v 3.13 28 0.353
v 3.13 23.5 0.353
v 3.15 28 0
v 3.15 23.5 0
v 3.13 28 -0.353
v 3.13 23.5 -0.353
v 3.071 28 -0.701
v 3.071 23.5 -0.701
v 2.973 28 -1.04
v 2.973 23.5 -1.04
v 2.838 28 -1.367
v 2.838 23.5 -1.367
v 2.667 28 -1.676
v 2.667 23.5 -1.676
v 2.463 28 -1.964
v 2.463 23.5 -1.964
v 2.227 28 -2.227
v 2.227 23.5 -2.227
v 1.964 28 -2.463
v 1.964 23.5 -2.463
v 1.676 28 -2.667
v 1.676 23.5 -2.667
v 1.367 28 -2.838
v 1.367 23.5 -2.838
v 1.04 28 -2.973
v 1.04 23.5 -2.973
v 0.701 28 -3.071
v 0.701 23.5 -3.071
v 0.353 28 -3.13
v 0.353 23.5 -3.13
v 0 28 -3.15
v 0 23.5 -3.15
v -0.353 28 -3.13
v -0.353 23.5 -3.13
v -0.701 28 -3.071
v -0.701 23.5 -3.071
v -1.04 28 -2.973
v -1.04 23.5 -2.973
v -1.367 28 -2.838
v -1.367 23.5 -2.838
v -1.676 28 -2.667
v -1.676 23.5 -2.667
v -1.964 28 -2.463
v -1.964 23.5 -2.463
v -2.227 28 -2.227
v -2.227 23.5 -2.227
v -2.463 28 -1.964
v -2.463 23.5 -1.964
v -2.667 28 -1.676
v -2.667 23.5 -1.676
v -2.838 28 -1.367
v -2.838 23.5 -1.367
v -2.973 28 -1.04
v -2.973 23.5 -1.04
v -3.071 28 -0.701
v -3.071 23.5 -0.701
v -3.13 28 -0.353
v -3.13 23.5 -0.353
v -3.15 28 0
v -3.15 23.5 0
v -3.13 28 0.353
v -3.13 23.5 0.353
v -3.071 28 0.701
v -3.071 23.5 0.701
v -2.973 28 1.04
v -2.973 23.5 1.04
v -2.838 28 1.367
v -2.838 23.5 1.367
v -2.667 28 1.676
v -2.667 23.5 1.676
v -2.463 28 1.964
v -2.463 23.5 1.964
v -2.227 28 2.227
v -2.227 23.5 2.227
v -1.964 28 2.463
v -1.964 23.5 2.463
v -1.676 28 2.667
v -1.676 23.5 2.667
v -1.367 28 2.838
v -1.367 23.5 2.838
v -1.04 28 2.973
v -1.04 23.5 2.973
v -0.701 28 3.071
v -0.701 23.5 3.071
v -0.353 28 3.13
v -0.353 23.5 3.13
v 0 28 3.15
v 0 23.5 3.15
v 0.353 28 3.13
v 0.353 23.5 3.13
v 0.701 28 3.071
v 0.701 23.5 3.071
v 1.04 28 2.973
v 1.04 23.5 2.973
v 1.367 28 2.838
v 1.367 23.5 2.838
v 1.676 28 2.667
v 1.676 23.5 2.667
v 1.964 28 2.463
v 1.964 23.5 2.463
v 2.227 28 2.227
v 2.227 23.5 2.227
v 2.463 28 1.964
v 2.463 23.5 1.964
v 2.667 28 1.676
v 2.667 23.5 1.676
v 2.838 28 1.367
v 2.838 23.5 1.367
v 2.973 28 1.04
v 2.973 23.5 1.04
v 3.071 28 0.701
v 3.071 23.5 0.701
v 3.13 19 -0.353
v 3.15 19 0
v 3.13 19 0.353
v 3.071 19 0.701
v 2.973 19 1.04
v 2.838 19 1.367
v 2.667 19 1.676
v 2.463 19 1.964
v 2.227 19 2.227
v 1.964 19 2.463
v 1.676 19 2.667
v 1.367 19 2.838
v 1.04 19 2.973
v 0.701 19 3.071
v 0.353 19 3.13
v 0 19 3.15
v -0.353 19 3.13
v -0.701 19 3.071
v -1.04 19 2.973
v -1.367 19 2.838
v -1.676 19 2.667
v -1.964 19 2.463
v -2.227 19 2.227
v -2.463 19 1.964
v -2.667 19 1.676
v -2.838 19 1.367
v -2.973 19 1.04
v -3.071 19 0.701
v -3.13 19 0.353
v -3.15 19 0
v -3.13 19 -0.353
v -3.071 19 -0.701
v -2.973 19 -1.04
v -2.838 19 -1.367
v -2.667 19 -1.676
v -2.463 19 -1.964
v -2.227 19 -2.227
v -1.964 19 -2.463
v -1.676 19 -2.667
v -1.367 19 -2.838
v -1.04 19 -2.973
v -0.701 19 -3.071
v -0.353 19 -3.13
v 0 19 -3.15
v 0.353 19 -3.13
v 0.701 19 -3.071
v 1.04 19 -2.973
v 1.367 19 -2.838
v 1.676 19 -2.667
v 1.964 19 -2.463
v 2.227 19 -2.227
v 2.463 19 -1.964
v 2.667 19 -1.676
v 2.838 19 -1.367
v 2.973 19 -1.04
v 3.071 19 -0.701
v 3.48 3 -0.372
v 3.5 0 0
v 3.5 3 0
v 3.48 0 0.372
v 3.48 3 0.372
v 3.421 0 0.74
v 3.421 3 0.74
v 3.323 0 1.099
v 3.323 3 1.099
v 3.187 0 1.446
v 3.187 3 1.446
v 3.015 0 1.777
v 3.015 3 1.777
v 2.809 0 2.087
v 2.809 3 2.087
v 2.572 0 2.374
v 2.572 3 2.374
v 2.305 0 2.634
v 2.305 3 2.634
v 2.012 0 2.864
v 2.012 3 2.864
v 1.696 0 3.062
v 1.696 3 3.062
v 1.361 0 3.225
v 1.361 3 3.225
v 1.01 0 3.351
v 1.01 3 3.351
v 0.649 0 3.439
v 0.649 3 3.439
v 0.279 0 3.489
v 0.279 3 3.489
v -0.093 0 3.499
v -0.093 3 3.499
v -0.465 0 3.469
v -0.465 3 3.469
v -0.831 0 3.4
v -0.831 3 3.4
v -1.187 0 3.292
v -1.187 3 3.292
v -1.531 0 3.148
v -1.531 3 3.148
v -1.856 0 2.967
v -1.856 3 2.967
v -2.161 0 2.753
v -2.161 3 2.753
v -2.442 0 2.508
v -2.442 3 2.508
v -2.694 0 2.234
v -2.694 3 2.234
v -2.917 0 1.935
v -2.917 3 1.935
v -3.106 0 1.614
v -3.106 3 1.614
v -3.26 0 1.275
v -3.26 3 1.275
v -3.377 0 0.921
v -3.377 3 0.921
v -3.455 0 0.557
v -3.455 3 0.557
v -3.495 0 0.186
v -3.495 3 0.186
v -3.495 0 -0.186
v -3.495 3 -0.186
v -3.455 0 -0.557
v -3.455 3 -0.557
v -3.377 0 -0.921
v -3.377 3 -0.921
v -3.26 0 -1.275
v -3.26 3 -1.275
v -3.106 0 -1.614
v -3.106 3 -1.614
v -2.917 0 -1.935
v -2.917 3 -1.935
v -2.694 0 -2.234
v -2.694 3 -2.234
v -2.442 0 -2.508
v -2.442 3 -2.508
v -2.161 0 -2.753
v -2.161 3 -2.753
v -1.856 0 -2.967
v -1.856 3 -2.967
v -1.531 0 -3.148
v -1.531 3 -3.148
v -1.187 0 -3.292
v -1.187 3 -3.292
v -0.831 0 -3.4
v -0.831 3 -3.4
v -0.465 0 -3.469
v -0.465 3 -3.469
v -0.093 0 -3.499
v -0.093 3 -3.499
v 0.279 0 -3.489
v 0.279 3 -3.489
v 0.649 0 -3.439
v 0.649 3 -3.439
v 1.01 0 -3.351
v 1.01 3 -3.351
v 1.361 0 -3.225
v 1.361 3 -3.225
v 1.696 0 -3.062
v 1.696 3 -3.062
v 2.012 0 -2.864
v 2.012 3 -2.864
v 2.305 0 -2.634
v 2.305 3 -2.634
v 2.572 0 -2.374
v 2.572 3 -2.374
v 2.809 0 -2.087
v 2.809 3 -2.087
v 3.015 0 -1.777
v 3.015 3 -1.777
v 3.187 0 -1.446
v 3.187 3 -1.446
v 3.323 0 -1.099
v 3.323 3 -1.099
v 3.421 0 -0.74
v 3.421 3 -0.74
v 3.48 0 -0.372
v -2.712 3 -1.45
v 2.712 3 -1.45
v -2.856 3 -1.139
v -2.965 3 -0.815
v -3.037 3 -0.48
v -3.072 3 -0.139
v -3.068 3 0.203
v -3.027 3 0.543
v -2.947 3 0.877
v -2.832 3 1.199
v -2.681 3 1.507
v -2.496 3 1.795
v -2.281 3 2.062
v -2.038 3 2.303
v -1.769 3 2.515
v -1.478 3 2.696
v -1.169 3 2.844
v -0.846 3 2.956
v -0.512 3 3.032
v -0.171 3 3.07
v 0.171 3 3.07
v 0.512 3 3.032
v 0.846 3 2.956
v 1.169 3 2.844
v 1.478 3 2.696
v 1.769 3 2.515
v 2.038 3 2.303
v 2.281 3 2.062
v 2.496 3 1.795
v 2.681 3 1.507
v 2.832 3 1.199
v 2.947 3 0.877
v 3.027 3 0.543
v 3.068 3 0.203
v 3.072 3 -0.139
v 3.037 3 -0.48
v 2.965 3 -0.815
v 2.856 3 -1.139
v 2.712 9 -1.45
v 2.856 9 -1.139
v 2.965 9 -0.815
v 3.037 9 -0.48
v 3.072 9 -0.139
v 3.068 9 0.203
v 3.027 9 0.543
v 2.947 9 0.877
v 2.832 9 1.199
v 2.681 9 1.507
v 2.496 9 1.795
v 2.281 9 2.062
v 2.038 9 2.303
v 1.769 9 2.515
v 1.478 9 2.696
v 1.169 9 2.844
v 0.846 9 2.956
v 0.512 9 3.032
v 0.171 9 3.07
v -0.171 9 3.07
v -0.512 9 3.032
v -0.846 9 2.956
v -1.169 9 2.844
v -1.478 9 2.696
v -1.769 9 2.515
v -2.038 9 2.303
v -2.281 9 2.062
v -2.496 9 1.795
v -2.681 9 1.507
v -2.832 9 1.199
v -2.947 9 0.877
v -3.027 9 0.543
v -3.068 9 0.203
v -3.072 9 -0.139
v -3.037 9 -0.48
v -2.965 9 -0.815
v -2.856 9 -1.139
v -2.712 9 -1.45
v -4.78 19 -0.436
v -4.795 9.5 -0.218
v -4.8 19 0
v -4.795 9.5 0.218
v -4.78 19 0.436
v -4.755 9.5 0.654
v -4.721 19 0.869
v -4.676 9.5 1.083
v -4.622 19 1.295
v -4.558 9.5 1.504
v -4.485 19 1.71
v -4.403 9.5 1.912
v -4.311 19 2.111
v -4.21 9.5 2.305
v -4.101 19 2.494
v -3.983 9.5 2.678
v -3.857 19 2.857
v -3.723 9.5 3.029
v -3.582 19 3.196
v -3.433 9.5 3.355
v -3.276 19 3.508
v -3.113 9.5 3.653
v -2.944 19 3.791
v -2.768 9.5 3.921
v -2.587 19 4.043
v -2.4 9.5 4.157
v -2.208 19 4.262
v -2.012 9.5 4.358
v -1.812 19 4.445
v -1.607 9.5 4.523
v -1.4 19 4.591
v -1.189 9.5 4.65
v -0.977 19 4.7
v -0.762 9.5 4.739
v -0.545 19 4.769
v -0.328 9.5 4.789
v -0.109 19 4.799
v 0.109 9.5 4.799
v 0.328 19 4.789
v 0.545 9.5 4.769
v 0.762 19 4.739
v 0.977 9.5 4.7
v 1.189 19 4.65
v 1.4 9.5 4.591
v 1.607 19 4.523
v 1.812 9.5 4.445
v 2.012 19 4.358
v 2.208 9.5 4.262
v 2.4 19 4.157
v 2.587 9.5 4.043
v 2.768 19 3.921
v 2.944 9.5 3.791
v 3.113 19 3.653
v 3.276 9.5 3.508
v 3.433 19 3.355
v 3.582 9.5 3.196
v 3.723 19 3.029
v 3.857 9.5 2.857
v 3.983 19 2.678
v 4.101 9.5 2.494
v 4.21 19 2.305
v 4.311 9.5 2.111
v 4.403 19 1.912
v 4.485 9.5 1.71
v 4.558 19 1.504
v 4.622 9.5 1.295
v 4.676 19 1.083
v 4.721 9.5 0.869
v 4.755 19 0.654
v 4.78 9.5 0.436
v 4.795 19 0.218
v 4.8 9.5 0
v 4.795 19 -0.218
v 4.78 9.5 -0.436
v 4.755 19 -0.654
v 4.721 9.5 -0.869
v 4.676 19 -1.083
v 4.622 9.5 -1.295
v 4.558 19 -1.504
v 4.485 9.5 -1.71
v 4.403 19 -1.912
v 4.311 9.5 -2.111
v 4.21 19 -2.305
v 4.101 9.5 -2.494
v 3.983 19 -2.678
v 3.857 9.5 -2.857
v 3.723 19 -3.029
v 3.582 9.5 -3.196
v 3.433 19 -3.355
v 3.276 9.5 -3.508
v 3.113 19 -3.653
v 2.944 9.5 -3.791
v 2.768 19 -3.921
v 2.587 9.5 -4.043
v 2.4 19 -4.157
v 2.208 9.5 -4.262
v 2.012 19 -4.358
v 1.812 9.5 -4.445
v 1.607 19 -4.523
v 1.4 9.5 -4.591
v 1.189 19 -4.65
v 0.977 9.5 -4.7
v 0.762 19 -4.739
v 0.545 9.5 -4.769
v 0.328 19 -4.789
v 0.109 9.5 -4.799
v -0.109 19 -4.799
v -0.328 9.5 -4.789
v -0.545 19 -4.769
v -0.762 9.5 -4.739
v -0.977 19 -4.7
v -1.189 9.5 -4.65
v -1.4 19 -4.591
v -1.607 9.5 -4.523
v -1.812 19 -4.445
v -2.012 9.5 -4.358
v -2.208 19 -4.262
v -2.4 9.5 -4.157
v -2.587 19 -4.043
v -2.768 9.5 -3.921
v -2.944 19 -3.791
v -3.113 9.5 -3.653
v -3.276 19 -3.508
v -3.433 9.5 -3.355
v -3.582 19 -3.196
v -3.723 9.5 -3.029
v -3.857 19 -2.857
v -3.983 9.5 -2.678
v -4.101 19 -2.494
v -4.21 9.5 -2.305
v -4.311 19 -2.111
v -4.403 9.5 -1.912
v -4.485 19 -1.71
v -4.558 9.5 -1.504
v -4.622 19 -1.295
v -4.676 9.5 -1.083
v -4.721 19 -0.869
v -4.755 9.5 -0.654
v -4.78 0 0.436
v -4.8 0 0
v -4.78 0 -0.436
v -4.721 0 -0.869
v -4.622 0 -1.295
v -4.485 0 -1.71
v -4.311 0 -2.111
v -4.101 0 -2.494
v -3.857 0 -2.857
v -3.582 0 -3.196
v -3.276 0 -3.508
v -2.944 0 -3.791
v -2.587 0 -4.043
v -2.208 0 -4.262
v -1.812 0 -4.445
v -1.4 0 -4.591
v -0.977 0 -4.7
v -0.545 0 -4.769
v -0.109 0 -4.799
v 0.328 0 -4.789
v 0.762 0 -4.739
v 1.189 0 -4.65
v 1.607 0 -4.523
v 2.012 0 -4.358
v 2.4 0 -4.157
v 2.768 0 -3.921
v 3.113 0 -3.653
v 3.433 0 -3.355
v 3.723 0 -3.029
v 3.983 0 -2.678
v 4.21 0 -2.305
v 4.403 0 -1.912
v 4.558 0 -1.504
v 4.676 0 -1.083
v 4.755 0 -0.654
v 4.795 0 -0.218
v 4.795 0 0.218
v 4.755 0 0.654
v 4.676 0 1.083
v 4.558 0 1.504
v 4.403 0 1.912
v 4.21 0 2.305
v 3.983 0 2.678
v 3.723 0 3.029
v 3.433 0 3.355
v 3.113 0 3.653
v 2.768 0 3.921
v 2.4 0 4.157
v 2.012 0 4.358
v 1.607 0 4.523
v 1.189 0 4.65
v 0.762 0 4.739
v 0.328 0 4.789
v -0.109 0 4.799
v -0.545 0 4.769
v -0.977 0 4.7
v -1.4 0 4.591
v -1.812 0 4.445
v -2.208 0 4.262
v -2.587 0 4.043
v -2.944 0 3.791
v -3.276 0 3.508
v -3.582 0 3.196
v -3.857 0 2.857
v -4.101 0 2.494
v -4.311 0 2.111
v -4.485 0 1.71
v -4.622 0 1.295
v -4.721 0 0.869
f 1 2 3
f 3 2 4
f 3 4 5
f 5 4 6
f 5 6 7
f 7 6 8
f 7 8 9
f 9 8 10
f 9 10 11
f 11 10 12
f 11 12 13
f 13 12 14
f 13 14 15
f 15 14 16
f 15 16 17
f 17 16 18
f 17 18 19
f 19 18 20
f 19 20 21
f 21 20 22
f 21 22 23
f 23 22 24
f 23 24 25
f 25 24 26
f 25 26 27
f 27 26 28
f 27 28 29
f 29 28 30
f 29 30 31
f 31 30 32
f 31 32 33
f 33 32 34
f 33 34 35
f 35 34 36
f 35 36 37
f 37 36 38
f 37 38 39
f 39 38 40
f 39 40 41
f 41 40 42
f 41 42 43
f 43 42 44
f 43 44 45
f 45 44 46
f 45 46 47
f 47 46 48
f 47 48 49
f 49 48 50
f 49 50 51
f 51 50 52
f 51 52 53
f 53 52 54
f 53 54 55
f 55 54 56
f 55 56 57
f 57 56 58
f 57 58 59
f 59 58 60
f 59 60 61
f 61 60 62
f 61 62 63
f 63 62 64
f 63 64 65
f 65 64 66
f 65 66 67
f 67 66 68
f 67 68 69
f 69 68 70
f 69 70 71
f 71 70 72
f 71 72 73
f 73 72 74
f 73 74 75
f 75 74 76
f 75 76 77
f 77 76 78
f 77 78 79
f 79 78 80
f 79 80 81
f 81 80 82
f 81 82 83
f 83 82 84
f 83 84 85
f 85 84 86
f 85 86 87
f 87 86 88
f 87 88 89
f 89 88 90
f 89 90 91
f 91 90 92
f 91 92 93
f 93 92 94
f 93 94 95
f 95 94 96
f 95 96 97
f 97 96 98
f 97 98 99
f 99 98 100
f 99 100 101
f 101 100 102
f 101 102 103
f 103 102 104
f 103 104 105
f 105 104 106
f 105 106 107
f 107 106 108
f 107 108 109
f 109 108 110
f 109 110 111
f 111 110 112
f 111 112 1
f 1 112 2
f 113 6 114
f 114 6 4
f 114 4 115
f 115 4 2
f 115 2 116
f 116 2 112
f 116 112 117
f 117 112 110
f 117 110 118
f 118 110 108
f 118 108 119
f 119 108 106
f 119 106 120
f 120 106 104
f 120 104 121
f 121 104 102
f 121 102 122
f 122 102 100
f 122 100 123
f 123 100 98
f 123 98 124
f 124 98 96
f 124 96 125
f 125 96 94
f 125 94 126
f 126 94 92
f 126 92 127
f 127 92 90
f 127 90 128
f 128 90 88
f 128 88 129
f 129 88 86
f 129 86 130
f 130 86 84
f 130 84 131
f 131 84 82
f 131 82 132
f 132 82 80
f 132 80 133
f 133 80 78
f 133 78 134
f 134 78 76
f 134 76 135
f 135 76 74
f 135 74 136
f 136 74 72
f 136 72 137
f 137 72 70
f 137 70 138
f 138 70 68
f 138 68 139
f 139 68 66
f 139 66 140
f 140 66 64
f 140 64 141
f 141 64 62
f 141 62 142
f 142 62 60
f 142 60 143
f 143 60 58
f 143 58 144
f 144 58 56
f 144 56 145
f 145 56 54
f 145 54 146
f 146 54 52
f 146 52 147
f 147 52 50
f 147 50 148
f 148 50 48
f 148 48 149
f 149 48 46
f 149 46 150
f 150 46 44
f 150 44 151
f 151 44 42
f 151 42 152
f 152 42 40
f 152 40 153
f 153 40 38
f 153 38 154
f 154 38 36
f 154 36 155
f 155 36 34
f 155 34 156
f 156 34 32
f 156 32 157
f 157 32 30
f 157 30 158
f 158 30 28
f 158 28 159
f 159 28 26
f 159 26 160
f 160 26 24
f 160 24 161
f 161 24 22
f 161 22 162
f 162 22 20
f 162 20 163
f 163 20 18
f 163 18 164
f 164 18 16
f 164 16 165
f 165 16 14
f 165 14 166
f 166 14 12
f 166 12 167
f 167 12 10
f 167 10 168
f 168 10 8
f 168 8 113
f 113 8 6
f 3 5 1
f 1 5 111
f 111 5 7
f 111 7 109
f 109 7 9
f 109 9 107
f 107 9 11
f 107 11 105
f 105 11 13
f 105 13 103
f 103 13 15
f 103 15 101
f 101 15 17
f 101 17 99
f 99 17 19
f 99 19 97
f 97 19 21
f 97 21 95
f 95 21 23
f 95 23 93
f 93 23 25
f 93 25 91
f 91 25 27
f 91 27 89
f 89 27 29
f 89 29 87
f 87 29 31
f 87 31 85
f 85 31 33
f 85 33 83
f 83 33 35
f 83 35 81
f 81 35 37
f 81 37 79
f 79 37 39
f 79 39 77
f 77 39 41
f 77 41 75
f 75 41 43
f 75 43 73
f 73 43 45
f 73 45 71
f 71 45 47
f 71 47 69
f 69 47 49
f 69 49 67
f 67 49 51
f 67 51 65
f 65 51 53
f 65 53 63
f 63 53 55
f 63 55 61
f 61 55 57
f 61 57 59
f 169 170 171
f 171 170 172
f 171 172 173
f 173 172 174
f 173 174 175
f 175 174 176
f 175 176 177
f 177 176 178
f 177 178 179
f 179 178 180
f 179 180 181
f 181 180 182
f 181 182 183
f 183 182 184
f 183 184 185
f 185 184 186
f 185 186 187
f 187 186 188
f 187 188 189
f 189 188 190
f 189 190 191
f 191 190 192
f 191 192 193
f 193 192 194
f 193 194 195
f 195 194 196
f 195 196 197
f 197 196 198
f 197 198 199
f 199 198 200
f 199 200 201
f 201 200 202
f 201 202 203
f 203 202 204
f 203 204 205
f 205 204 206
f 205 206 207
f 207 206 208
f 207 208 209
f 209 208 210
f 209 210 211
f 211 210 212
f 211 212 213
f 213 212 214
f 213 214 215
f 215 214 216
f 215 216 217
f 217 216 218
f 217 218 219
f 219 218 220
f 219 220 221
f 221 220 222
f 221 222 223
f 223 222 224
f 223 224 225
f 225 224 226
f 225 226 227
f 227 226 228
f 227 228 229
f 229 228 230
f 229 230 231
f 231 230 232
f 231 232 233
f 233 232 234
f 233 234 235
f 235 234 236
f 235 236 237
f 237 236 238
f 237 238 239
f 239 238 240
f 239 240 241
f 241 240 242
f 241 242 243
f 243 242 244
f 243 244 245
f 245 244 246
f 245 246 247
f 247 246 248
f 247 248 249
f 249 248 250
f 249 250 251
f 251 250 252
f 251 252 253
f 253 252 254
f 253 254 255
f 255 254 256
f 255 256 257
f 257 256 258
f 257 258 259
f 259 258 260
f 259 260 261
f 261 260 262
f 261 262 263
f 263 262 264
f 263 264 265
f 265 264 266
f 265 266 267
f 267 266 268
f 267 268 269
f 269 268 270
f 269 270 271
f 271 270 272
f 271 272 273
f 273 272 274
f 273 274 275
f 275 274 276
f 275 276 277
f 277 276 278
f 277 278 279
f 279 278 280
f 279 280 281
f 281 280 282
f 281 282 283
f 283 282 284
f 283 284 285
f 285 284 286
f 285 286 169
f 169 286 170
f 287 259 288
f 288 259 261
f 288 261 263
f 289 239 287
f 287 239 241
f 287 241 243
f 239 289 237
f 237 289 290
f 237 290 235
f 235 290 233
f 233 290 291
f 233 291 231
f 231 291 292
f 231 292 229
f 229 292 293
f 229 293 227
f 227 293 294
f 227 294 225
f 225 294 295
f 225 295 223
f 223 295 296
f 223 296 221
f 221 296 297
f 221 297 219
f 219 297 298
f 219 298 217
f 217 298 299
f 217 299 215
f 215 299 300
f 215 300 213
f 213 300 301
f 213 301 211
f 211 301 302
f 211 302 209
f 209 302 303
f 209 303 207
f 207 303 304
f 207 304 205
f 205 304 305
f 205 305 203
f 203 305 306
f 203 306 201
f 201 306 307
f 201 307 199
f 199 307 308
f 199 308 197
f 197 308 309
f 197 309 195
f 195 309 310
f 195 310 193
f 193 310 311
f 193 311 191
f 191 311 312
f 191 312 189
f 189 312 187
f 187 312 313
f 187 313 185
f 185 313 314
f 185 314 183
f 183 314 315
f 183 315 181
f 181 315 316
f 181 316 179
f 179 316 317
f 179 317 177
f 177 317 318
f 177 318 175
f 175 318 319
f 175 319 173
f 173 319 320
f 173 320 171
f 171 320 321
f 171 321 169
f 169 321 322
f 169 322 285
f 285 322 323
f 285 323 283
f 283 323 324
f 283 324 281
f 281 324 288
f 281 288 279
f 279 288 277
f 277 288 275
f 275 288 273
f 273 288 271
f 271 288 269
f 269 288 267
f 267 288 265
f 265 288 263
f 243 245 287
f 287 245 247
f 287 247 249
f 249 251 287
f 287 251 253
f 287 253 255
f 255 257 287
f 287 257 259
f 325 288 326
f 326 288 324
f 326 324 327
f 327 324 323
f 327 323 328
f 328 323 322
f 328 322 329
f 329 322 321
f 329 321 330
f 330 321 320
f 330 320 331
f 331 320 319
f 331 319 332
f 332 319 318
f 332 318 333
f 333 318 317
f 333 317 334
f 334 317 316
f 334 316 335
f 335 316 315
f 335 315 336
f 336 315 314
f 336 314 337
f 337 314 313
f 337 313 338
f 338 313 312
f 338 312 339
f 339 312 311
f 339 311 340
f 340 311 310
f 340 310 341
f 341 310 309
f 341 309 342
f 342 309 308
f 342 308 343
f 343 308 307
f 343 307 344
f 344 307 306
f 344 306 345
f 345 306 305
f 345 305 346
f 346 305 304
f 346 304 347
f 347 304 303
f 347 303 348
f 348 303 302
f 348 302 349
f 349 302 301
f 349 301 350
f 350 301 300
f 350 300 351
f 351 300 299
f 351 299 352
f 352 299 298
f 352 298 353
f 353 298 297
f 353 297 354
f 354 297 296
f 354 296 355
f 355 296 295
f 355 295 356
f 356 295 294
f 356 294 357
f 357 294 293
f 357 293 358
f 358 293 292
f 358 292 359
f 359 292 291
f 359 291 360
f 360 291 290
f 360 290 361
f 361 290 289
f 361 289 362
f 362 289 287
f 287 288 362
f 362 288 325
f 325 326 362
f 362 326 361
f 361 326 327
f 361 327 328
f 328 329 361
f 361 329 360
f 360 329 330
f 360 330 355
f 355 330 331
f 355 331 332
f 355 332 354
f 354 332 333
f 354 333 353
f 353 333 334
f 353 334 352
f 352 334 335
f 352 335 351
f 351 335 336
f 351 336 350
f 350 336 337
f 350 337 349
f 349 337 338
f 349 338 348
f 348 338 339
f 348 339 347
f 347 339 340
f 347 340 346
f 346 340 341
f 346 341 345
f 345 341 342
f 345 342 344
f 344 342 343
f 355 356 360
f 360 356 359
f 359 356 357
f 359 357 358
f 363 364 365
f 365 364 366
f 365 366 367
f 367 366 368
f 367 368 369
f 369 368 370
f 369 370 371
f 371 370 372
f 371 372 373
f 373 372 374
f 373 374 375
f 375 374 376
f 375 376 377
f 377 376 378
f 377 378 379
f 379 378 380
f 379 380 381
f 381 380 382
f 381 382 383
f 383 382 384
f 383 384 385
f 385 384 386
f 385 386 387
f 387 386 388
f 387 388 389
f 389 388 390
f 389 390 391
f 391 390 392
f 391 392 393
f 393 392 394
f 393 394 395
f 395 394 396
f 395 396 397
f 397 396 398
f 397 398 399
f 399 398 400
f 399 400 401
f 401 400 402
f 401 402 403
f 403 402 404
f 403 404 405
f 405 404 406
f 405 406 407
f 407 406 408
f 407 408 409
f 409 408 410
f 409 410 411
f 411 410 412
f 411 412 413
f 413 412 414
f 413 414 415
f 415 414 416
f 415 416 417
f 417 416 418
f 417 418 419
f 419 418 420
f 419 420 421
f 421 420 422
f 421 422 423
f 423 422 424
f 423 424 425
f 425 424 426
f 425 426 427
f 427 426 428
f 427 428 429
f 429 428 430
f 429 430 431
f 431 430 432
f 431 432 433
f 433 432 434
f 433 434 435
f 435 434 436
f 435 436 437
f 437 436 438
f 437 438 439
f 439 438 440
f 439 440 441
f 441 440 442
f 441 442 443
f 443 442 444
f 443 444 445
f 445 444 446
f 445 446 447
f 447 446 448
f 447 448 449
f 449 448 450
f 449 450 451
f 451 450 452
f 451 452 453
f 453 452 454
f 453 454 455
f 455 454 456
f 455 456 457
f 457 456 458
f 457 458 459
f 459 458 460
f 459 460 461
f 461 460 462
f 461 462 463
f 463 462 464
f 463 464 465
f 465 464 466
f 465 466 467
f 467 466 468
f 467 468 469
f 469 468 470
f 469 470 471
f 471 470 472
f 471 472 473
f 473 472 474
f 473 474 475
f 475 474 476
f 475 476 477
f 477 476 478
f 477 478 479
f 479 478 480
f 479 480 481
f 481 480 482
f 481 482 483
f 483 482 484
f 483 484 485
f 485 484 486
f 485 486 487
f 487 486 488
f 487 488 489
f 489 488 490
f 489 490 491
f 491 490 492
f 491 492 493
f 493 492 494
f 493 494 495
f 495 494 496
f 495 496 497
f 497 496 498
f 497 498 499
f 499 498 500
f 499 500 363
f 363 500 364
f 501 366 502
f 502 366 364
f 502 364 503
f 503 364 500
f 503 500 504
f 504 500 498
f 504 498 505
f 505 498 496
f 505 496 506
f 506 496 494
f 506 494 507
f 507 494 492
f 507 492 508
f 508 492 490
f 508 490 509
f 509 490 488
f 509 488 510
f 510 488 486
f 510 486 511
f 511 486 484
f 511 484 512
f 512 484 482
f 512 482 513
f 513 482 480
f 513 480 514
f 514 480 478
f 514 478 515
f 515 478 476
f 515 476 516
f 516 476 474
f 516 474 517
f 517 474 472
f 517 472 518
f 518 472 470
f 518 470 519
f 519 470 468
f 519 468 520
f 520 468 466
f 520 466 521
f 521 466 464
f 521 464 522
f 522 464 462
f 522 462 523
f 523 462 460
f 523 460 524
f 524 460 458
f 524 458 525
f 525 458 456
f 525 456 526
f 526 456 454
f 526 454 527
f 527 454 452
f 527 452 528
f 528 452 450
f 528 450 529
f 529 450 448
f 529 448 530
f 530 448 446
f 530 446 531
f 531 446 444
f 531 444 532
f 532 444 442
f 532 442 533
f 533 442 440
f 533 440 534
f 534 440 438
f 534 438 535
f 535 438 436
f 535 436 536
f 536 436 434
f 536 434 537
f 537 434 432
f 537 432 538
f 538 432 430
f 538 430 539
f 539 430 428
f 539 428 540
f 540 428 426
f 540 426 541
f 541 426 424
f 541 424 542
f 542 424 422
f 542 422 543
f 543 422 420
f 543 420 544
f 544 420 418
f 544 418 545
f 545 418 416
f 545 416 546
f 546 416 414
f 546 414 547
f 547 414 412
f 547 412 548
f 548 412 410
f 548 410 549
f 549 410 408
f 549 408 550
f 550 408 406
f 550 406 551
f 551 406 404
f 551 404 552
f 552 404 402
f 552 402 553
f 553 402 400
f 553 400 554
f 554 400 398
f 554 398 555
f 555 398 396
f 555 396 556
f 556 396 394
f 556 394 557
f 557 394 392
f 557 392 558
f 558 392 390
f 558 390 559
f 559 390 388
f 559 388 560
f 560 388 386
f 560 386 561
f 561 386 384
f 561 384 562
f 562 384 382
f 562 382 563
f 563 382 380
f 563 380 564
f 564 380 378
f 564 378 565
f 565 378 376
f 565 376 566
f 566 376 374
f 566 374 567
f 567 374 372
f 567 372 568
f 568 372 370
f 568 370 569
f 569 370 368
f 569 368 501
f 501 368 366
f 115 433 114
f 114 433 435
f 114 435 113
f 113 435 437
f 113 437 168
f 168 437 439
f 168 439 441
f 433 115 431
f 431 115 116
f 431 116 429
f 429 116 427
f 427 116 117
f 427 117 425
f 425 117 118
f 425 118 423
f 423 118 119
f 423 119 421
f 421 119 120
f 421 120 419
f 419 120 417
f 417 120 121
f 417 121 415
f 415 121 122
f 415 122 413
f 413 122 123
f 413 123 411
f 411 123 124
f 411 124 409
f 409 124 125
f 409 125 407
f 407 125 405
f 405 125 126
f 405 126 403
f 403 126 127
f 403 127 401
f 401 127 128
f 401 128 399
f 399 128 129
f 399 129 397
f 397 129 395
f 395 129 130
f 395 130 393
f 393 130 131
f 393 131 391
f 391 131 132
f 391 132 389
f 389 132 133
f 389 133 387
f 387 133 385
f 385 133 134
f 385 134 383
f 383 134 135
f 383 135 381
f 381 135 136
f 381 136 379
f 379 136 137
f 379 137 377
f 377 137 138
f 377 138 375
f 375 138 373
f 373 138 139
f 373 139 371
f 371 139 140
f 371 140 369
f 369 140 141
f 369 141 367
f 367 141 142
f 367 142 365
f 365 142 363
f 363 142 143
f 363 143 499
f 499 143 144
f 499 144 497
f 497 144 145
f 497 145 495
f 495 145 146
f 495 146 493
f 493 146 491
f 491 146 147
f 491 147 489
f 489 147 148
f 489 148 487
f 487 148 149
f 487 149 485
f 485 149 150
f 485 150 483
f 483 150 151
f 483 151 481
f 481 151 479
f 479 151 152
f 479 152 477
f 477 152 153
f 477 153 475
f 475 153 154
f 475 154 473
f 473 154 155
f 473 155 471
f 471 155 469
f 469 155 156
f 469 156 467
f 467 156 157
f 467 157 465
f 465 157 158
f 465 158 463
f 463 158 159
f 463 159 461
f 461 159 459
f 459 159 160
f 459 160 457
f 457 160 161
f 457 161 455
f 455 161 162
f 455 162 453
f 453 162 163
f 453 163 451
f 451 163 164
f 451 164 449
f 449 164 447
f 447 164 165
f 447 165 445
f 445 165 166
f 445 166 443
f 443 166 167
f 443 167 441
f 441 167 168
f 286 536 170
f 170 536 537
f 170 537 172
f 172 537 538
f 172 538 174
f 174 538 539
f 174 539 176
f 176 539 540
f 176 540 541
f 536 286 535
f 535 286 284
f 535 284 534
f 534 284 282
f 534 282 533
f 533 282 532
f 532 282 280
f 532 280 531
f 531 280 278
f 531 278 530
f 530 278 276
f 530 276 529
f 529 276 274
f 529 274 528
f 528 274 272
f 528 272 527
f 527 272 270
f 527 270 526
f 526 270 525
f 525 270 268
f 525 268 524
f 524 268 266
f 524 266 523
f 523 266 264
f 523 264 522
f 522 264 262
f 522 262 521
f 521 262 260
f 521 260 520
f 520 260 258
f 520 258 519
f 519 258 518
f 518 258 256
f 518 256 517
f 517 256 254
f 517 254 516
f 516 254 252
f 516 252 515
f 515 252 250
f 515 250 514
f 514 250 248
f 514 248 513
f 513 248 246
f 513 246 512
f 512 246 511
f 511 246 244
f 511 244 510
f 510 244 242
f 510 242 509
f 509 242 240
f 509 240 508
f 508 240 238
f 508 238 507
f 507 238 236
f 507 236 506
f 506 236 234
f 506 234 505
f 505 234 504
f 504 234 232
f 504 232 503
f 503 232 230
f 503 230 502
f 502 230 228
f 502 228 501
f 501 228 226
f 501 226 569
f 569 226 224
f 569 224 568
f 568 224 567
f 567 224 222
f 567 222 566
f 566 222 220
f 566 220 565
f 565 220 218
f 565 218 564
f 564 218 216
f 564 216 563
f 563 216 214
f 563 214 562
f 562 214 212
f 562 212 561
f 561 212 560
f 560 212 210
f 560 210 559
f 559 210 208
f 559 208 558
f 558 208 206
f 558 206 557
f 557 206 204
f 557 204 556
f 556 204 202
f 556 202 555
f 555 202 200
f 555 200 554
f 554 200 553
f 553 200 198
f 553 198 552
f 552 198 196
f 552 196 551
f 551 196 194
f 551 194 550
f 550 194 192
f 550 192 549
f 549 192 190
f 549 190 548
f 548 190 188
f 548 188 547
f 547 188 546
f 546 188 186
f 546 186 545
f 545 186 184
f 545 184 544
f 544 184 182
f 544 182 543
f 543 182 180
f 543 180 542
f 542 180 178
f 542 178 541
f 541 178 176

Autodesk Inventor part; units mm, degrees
ref_plane "YZ Plane" through (0, 0, 0) normal (1, 0, 0) x (0, 1, 0)
ref_plane "XZ Plane" through (0, 0, 0) normal (0, 1, 0) x (-1, 0, 0)
ref_plane "XY Plane" through (0, 0, 0) normal (0, 0, 1) x (1, 0, 0)
sketch "Sketch1" plane through (0, 0, 0) normal (0, 1, 0) x (-1, 0, 0)
  point P0 (0, 0)
sketch "Sketch2" plane through (0, 0, 0) normal (0, 1, 0) x (-1, 0, 0)
  circle A0 centre (0, 0) radius 4.8
  dimension "d0" = 9.6
extrude "Extrusion1" add sketch "Sketch2" along normal blind 19
sketch "Sketch3" plane through (0, 19, 0) normal (0, 1, 0) x (1, 0, 0)
  circle A0 centre (0, 0) radius 3
  line L0 (-2.6263, 1.45) -> (2.6263, 1.45)
  circle A1 centre (0, 0) radius 3.15
  point P0 (0, 1.45)
  dimension "d3" = 6
  dimension "d4" = 1.45
  dimension "d13" = 6.3
sketch "shaft cutout" plane through (0, 0, 0) normal (0, -1, 0) x (1, 0, 0)
  circle A0 centre (0, 0) radius 3.075
  line L0 (2.7117, -1.45) -> (-2.7117, -1.45)
  point P0 (0, -1.45)
  point P1 (0, -1.45)
  dimension "d7" = 6.15
sketch "top spacer" plane through (0, 0, 0) normal (0, -1, 0) x (1, 0, 0)
  circle A0 centre (0, 0) radius 3.5
  dimension "d10" = 7
extrude "Extrusion6" cut sketch "shaft cutout" against normal blind 9 contours A0 L0 picked at (0.9722, -0.3362)
extrude "Extrusion7" cut sketch "top spacer" against normal blind 3
extrude "Extrusion8" add sketch "Sketch3" along normal blind 9 contours A0 L0 | L0 A0 | A1
properties part number "v6 Knob extender long_3DPrint"
